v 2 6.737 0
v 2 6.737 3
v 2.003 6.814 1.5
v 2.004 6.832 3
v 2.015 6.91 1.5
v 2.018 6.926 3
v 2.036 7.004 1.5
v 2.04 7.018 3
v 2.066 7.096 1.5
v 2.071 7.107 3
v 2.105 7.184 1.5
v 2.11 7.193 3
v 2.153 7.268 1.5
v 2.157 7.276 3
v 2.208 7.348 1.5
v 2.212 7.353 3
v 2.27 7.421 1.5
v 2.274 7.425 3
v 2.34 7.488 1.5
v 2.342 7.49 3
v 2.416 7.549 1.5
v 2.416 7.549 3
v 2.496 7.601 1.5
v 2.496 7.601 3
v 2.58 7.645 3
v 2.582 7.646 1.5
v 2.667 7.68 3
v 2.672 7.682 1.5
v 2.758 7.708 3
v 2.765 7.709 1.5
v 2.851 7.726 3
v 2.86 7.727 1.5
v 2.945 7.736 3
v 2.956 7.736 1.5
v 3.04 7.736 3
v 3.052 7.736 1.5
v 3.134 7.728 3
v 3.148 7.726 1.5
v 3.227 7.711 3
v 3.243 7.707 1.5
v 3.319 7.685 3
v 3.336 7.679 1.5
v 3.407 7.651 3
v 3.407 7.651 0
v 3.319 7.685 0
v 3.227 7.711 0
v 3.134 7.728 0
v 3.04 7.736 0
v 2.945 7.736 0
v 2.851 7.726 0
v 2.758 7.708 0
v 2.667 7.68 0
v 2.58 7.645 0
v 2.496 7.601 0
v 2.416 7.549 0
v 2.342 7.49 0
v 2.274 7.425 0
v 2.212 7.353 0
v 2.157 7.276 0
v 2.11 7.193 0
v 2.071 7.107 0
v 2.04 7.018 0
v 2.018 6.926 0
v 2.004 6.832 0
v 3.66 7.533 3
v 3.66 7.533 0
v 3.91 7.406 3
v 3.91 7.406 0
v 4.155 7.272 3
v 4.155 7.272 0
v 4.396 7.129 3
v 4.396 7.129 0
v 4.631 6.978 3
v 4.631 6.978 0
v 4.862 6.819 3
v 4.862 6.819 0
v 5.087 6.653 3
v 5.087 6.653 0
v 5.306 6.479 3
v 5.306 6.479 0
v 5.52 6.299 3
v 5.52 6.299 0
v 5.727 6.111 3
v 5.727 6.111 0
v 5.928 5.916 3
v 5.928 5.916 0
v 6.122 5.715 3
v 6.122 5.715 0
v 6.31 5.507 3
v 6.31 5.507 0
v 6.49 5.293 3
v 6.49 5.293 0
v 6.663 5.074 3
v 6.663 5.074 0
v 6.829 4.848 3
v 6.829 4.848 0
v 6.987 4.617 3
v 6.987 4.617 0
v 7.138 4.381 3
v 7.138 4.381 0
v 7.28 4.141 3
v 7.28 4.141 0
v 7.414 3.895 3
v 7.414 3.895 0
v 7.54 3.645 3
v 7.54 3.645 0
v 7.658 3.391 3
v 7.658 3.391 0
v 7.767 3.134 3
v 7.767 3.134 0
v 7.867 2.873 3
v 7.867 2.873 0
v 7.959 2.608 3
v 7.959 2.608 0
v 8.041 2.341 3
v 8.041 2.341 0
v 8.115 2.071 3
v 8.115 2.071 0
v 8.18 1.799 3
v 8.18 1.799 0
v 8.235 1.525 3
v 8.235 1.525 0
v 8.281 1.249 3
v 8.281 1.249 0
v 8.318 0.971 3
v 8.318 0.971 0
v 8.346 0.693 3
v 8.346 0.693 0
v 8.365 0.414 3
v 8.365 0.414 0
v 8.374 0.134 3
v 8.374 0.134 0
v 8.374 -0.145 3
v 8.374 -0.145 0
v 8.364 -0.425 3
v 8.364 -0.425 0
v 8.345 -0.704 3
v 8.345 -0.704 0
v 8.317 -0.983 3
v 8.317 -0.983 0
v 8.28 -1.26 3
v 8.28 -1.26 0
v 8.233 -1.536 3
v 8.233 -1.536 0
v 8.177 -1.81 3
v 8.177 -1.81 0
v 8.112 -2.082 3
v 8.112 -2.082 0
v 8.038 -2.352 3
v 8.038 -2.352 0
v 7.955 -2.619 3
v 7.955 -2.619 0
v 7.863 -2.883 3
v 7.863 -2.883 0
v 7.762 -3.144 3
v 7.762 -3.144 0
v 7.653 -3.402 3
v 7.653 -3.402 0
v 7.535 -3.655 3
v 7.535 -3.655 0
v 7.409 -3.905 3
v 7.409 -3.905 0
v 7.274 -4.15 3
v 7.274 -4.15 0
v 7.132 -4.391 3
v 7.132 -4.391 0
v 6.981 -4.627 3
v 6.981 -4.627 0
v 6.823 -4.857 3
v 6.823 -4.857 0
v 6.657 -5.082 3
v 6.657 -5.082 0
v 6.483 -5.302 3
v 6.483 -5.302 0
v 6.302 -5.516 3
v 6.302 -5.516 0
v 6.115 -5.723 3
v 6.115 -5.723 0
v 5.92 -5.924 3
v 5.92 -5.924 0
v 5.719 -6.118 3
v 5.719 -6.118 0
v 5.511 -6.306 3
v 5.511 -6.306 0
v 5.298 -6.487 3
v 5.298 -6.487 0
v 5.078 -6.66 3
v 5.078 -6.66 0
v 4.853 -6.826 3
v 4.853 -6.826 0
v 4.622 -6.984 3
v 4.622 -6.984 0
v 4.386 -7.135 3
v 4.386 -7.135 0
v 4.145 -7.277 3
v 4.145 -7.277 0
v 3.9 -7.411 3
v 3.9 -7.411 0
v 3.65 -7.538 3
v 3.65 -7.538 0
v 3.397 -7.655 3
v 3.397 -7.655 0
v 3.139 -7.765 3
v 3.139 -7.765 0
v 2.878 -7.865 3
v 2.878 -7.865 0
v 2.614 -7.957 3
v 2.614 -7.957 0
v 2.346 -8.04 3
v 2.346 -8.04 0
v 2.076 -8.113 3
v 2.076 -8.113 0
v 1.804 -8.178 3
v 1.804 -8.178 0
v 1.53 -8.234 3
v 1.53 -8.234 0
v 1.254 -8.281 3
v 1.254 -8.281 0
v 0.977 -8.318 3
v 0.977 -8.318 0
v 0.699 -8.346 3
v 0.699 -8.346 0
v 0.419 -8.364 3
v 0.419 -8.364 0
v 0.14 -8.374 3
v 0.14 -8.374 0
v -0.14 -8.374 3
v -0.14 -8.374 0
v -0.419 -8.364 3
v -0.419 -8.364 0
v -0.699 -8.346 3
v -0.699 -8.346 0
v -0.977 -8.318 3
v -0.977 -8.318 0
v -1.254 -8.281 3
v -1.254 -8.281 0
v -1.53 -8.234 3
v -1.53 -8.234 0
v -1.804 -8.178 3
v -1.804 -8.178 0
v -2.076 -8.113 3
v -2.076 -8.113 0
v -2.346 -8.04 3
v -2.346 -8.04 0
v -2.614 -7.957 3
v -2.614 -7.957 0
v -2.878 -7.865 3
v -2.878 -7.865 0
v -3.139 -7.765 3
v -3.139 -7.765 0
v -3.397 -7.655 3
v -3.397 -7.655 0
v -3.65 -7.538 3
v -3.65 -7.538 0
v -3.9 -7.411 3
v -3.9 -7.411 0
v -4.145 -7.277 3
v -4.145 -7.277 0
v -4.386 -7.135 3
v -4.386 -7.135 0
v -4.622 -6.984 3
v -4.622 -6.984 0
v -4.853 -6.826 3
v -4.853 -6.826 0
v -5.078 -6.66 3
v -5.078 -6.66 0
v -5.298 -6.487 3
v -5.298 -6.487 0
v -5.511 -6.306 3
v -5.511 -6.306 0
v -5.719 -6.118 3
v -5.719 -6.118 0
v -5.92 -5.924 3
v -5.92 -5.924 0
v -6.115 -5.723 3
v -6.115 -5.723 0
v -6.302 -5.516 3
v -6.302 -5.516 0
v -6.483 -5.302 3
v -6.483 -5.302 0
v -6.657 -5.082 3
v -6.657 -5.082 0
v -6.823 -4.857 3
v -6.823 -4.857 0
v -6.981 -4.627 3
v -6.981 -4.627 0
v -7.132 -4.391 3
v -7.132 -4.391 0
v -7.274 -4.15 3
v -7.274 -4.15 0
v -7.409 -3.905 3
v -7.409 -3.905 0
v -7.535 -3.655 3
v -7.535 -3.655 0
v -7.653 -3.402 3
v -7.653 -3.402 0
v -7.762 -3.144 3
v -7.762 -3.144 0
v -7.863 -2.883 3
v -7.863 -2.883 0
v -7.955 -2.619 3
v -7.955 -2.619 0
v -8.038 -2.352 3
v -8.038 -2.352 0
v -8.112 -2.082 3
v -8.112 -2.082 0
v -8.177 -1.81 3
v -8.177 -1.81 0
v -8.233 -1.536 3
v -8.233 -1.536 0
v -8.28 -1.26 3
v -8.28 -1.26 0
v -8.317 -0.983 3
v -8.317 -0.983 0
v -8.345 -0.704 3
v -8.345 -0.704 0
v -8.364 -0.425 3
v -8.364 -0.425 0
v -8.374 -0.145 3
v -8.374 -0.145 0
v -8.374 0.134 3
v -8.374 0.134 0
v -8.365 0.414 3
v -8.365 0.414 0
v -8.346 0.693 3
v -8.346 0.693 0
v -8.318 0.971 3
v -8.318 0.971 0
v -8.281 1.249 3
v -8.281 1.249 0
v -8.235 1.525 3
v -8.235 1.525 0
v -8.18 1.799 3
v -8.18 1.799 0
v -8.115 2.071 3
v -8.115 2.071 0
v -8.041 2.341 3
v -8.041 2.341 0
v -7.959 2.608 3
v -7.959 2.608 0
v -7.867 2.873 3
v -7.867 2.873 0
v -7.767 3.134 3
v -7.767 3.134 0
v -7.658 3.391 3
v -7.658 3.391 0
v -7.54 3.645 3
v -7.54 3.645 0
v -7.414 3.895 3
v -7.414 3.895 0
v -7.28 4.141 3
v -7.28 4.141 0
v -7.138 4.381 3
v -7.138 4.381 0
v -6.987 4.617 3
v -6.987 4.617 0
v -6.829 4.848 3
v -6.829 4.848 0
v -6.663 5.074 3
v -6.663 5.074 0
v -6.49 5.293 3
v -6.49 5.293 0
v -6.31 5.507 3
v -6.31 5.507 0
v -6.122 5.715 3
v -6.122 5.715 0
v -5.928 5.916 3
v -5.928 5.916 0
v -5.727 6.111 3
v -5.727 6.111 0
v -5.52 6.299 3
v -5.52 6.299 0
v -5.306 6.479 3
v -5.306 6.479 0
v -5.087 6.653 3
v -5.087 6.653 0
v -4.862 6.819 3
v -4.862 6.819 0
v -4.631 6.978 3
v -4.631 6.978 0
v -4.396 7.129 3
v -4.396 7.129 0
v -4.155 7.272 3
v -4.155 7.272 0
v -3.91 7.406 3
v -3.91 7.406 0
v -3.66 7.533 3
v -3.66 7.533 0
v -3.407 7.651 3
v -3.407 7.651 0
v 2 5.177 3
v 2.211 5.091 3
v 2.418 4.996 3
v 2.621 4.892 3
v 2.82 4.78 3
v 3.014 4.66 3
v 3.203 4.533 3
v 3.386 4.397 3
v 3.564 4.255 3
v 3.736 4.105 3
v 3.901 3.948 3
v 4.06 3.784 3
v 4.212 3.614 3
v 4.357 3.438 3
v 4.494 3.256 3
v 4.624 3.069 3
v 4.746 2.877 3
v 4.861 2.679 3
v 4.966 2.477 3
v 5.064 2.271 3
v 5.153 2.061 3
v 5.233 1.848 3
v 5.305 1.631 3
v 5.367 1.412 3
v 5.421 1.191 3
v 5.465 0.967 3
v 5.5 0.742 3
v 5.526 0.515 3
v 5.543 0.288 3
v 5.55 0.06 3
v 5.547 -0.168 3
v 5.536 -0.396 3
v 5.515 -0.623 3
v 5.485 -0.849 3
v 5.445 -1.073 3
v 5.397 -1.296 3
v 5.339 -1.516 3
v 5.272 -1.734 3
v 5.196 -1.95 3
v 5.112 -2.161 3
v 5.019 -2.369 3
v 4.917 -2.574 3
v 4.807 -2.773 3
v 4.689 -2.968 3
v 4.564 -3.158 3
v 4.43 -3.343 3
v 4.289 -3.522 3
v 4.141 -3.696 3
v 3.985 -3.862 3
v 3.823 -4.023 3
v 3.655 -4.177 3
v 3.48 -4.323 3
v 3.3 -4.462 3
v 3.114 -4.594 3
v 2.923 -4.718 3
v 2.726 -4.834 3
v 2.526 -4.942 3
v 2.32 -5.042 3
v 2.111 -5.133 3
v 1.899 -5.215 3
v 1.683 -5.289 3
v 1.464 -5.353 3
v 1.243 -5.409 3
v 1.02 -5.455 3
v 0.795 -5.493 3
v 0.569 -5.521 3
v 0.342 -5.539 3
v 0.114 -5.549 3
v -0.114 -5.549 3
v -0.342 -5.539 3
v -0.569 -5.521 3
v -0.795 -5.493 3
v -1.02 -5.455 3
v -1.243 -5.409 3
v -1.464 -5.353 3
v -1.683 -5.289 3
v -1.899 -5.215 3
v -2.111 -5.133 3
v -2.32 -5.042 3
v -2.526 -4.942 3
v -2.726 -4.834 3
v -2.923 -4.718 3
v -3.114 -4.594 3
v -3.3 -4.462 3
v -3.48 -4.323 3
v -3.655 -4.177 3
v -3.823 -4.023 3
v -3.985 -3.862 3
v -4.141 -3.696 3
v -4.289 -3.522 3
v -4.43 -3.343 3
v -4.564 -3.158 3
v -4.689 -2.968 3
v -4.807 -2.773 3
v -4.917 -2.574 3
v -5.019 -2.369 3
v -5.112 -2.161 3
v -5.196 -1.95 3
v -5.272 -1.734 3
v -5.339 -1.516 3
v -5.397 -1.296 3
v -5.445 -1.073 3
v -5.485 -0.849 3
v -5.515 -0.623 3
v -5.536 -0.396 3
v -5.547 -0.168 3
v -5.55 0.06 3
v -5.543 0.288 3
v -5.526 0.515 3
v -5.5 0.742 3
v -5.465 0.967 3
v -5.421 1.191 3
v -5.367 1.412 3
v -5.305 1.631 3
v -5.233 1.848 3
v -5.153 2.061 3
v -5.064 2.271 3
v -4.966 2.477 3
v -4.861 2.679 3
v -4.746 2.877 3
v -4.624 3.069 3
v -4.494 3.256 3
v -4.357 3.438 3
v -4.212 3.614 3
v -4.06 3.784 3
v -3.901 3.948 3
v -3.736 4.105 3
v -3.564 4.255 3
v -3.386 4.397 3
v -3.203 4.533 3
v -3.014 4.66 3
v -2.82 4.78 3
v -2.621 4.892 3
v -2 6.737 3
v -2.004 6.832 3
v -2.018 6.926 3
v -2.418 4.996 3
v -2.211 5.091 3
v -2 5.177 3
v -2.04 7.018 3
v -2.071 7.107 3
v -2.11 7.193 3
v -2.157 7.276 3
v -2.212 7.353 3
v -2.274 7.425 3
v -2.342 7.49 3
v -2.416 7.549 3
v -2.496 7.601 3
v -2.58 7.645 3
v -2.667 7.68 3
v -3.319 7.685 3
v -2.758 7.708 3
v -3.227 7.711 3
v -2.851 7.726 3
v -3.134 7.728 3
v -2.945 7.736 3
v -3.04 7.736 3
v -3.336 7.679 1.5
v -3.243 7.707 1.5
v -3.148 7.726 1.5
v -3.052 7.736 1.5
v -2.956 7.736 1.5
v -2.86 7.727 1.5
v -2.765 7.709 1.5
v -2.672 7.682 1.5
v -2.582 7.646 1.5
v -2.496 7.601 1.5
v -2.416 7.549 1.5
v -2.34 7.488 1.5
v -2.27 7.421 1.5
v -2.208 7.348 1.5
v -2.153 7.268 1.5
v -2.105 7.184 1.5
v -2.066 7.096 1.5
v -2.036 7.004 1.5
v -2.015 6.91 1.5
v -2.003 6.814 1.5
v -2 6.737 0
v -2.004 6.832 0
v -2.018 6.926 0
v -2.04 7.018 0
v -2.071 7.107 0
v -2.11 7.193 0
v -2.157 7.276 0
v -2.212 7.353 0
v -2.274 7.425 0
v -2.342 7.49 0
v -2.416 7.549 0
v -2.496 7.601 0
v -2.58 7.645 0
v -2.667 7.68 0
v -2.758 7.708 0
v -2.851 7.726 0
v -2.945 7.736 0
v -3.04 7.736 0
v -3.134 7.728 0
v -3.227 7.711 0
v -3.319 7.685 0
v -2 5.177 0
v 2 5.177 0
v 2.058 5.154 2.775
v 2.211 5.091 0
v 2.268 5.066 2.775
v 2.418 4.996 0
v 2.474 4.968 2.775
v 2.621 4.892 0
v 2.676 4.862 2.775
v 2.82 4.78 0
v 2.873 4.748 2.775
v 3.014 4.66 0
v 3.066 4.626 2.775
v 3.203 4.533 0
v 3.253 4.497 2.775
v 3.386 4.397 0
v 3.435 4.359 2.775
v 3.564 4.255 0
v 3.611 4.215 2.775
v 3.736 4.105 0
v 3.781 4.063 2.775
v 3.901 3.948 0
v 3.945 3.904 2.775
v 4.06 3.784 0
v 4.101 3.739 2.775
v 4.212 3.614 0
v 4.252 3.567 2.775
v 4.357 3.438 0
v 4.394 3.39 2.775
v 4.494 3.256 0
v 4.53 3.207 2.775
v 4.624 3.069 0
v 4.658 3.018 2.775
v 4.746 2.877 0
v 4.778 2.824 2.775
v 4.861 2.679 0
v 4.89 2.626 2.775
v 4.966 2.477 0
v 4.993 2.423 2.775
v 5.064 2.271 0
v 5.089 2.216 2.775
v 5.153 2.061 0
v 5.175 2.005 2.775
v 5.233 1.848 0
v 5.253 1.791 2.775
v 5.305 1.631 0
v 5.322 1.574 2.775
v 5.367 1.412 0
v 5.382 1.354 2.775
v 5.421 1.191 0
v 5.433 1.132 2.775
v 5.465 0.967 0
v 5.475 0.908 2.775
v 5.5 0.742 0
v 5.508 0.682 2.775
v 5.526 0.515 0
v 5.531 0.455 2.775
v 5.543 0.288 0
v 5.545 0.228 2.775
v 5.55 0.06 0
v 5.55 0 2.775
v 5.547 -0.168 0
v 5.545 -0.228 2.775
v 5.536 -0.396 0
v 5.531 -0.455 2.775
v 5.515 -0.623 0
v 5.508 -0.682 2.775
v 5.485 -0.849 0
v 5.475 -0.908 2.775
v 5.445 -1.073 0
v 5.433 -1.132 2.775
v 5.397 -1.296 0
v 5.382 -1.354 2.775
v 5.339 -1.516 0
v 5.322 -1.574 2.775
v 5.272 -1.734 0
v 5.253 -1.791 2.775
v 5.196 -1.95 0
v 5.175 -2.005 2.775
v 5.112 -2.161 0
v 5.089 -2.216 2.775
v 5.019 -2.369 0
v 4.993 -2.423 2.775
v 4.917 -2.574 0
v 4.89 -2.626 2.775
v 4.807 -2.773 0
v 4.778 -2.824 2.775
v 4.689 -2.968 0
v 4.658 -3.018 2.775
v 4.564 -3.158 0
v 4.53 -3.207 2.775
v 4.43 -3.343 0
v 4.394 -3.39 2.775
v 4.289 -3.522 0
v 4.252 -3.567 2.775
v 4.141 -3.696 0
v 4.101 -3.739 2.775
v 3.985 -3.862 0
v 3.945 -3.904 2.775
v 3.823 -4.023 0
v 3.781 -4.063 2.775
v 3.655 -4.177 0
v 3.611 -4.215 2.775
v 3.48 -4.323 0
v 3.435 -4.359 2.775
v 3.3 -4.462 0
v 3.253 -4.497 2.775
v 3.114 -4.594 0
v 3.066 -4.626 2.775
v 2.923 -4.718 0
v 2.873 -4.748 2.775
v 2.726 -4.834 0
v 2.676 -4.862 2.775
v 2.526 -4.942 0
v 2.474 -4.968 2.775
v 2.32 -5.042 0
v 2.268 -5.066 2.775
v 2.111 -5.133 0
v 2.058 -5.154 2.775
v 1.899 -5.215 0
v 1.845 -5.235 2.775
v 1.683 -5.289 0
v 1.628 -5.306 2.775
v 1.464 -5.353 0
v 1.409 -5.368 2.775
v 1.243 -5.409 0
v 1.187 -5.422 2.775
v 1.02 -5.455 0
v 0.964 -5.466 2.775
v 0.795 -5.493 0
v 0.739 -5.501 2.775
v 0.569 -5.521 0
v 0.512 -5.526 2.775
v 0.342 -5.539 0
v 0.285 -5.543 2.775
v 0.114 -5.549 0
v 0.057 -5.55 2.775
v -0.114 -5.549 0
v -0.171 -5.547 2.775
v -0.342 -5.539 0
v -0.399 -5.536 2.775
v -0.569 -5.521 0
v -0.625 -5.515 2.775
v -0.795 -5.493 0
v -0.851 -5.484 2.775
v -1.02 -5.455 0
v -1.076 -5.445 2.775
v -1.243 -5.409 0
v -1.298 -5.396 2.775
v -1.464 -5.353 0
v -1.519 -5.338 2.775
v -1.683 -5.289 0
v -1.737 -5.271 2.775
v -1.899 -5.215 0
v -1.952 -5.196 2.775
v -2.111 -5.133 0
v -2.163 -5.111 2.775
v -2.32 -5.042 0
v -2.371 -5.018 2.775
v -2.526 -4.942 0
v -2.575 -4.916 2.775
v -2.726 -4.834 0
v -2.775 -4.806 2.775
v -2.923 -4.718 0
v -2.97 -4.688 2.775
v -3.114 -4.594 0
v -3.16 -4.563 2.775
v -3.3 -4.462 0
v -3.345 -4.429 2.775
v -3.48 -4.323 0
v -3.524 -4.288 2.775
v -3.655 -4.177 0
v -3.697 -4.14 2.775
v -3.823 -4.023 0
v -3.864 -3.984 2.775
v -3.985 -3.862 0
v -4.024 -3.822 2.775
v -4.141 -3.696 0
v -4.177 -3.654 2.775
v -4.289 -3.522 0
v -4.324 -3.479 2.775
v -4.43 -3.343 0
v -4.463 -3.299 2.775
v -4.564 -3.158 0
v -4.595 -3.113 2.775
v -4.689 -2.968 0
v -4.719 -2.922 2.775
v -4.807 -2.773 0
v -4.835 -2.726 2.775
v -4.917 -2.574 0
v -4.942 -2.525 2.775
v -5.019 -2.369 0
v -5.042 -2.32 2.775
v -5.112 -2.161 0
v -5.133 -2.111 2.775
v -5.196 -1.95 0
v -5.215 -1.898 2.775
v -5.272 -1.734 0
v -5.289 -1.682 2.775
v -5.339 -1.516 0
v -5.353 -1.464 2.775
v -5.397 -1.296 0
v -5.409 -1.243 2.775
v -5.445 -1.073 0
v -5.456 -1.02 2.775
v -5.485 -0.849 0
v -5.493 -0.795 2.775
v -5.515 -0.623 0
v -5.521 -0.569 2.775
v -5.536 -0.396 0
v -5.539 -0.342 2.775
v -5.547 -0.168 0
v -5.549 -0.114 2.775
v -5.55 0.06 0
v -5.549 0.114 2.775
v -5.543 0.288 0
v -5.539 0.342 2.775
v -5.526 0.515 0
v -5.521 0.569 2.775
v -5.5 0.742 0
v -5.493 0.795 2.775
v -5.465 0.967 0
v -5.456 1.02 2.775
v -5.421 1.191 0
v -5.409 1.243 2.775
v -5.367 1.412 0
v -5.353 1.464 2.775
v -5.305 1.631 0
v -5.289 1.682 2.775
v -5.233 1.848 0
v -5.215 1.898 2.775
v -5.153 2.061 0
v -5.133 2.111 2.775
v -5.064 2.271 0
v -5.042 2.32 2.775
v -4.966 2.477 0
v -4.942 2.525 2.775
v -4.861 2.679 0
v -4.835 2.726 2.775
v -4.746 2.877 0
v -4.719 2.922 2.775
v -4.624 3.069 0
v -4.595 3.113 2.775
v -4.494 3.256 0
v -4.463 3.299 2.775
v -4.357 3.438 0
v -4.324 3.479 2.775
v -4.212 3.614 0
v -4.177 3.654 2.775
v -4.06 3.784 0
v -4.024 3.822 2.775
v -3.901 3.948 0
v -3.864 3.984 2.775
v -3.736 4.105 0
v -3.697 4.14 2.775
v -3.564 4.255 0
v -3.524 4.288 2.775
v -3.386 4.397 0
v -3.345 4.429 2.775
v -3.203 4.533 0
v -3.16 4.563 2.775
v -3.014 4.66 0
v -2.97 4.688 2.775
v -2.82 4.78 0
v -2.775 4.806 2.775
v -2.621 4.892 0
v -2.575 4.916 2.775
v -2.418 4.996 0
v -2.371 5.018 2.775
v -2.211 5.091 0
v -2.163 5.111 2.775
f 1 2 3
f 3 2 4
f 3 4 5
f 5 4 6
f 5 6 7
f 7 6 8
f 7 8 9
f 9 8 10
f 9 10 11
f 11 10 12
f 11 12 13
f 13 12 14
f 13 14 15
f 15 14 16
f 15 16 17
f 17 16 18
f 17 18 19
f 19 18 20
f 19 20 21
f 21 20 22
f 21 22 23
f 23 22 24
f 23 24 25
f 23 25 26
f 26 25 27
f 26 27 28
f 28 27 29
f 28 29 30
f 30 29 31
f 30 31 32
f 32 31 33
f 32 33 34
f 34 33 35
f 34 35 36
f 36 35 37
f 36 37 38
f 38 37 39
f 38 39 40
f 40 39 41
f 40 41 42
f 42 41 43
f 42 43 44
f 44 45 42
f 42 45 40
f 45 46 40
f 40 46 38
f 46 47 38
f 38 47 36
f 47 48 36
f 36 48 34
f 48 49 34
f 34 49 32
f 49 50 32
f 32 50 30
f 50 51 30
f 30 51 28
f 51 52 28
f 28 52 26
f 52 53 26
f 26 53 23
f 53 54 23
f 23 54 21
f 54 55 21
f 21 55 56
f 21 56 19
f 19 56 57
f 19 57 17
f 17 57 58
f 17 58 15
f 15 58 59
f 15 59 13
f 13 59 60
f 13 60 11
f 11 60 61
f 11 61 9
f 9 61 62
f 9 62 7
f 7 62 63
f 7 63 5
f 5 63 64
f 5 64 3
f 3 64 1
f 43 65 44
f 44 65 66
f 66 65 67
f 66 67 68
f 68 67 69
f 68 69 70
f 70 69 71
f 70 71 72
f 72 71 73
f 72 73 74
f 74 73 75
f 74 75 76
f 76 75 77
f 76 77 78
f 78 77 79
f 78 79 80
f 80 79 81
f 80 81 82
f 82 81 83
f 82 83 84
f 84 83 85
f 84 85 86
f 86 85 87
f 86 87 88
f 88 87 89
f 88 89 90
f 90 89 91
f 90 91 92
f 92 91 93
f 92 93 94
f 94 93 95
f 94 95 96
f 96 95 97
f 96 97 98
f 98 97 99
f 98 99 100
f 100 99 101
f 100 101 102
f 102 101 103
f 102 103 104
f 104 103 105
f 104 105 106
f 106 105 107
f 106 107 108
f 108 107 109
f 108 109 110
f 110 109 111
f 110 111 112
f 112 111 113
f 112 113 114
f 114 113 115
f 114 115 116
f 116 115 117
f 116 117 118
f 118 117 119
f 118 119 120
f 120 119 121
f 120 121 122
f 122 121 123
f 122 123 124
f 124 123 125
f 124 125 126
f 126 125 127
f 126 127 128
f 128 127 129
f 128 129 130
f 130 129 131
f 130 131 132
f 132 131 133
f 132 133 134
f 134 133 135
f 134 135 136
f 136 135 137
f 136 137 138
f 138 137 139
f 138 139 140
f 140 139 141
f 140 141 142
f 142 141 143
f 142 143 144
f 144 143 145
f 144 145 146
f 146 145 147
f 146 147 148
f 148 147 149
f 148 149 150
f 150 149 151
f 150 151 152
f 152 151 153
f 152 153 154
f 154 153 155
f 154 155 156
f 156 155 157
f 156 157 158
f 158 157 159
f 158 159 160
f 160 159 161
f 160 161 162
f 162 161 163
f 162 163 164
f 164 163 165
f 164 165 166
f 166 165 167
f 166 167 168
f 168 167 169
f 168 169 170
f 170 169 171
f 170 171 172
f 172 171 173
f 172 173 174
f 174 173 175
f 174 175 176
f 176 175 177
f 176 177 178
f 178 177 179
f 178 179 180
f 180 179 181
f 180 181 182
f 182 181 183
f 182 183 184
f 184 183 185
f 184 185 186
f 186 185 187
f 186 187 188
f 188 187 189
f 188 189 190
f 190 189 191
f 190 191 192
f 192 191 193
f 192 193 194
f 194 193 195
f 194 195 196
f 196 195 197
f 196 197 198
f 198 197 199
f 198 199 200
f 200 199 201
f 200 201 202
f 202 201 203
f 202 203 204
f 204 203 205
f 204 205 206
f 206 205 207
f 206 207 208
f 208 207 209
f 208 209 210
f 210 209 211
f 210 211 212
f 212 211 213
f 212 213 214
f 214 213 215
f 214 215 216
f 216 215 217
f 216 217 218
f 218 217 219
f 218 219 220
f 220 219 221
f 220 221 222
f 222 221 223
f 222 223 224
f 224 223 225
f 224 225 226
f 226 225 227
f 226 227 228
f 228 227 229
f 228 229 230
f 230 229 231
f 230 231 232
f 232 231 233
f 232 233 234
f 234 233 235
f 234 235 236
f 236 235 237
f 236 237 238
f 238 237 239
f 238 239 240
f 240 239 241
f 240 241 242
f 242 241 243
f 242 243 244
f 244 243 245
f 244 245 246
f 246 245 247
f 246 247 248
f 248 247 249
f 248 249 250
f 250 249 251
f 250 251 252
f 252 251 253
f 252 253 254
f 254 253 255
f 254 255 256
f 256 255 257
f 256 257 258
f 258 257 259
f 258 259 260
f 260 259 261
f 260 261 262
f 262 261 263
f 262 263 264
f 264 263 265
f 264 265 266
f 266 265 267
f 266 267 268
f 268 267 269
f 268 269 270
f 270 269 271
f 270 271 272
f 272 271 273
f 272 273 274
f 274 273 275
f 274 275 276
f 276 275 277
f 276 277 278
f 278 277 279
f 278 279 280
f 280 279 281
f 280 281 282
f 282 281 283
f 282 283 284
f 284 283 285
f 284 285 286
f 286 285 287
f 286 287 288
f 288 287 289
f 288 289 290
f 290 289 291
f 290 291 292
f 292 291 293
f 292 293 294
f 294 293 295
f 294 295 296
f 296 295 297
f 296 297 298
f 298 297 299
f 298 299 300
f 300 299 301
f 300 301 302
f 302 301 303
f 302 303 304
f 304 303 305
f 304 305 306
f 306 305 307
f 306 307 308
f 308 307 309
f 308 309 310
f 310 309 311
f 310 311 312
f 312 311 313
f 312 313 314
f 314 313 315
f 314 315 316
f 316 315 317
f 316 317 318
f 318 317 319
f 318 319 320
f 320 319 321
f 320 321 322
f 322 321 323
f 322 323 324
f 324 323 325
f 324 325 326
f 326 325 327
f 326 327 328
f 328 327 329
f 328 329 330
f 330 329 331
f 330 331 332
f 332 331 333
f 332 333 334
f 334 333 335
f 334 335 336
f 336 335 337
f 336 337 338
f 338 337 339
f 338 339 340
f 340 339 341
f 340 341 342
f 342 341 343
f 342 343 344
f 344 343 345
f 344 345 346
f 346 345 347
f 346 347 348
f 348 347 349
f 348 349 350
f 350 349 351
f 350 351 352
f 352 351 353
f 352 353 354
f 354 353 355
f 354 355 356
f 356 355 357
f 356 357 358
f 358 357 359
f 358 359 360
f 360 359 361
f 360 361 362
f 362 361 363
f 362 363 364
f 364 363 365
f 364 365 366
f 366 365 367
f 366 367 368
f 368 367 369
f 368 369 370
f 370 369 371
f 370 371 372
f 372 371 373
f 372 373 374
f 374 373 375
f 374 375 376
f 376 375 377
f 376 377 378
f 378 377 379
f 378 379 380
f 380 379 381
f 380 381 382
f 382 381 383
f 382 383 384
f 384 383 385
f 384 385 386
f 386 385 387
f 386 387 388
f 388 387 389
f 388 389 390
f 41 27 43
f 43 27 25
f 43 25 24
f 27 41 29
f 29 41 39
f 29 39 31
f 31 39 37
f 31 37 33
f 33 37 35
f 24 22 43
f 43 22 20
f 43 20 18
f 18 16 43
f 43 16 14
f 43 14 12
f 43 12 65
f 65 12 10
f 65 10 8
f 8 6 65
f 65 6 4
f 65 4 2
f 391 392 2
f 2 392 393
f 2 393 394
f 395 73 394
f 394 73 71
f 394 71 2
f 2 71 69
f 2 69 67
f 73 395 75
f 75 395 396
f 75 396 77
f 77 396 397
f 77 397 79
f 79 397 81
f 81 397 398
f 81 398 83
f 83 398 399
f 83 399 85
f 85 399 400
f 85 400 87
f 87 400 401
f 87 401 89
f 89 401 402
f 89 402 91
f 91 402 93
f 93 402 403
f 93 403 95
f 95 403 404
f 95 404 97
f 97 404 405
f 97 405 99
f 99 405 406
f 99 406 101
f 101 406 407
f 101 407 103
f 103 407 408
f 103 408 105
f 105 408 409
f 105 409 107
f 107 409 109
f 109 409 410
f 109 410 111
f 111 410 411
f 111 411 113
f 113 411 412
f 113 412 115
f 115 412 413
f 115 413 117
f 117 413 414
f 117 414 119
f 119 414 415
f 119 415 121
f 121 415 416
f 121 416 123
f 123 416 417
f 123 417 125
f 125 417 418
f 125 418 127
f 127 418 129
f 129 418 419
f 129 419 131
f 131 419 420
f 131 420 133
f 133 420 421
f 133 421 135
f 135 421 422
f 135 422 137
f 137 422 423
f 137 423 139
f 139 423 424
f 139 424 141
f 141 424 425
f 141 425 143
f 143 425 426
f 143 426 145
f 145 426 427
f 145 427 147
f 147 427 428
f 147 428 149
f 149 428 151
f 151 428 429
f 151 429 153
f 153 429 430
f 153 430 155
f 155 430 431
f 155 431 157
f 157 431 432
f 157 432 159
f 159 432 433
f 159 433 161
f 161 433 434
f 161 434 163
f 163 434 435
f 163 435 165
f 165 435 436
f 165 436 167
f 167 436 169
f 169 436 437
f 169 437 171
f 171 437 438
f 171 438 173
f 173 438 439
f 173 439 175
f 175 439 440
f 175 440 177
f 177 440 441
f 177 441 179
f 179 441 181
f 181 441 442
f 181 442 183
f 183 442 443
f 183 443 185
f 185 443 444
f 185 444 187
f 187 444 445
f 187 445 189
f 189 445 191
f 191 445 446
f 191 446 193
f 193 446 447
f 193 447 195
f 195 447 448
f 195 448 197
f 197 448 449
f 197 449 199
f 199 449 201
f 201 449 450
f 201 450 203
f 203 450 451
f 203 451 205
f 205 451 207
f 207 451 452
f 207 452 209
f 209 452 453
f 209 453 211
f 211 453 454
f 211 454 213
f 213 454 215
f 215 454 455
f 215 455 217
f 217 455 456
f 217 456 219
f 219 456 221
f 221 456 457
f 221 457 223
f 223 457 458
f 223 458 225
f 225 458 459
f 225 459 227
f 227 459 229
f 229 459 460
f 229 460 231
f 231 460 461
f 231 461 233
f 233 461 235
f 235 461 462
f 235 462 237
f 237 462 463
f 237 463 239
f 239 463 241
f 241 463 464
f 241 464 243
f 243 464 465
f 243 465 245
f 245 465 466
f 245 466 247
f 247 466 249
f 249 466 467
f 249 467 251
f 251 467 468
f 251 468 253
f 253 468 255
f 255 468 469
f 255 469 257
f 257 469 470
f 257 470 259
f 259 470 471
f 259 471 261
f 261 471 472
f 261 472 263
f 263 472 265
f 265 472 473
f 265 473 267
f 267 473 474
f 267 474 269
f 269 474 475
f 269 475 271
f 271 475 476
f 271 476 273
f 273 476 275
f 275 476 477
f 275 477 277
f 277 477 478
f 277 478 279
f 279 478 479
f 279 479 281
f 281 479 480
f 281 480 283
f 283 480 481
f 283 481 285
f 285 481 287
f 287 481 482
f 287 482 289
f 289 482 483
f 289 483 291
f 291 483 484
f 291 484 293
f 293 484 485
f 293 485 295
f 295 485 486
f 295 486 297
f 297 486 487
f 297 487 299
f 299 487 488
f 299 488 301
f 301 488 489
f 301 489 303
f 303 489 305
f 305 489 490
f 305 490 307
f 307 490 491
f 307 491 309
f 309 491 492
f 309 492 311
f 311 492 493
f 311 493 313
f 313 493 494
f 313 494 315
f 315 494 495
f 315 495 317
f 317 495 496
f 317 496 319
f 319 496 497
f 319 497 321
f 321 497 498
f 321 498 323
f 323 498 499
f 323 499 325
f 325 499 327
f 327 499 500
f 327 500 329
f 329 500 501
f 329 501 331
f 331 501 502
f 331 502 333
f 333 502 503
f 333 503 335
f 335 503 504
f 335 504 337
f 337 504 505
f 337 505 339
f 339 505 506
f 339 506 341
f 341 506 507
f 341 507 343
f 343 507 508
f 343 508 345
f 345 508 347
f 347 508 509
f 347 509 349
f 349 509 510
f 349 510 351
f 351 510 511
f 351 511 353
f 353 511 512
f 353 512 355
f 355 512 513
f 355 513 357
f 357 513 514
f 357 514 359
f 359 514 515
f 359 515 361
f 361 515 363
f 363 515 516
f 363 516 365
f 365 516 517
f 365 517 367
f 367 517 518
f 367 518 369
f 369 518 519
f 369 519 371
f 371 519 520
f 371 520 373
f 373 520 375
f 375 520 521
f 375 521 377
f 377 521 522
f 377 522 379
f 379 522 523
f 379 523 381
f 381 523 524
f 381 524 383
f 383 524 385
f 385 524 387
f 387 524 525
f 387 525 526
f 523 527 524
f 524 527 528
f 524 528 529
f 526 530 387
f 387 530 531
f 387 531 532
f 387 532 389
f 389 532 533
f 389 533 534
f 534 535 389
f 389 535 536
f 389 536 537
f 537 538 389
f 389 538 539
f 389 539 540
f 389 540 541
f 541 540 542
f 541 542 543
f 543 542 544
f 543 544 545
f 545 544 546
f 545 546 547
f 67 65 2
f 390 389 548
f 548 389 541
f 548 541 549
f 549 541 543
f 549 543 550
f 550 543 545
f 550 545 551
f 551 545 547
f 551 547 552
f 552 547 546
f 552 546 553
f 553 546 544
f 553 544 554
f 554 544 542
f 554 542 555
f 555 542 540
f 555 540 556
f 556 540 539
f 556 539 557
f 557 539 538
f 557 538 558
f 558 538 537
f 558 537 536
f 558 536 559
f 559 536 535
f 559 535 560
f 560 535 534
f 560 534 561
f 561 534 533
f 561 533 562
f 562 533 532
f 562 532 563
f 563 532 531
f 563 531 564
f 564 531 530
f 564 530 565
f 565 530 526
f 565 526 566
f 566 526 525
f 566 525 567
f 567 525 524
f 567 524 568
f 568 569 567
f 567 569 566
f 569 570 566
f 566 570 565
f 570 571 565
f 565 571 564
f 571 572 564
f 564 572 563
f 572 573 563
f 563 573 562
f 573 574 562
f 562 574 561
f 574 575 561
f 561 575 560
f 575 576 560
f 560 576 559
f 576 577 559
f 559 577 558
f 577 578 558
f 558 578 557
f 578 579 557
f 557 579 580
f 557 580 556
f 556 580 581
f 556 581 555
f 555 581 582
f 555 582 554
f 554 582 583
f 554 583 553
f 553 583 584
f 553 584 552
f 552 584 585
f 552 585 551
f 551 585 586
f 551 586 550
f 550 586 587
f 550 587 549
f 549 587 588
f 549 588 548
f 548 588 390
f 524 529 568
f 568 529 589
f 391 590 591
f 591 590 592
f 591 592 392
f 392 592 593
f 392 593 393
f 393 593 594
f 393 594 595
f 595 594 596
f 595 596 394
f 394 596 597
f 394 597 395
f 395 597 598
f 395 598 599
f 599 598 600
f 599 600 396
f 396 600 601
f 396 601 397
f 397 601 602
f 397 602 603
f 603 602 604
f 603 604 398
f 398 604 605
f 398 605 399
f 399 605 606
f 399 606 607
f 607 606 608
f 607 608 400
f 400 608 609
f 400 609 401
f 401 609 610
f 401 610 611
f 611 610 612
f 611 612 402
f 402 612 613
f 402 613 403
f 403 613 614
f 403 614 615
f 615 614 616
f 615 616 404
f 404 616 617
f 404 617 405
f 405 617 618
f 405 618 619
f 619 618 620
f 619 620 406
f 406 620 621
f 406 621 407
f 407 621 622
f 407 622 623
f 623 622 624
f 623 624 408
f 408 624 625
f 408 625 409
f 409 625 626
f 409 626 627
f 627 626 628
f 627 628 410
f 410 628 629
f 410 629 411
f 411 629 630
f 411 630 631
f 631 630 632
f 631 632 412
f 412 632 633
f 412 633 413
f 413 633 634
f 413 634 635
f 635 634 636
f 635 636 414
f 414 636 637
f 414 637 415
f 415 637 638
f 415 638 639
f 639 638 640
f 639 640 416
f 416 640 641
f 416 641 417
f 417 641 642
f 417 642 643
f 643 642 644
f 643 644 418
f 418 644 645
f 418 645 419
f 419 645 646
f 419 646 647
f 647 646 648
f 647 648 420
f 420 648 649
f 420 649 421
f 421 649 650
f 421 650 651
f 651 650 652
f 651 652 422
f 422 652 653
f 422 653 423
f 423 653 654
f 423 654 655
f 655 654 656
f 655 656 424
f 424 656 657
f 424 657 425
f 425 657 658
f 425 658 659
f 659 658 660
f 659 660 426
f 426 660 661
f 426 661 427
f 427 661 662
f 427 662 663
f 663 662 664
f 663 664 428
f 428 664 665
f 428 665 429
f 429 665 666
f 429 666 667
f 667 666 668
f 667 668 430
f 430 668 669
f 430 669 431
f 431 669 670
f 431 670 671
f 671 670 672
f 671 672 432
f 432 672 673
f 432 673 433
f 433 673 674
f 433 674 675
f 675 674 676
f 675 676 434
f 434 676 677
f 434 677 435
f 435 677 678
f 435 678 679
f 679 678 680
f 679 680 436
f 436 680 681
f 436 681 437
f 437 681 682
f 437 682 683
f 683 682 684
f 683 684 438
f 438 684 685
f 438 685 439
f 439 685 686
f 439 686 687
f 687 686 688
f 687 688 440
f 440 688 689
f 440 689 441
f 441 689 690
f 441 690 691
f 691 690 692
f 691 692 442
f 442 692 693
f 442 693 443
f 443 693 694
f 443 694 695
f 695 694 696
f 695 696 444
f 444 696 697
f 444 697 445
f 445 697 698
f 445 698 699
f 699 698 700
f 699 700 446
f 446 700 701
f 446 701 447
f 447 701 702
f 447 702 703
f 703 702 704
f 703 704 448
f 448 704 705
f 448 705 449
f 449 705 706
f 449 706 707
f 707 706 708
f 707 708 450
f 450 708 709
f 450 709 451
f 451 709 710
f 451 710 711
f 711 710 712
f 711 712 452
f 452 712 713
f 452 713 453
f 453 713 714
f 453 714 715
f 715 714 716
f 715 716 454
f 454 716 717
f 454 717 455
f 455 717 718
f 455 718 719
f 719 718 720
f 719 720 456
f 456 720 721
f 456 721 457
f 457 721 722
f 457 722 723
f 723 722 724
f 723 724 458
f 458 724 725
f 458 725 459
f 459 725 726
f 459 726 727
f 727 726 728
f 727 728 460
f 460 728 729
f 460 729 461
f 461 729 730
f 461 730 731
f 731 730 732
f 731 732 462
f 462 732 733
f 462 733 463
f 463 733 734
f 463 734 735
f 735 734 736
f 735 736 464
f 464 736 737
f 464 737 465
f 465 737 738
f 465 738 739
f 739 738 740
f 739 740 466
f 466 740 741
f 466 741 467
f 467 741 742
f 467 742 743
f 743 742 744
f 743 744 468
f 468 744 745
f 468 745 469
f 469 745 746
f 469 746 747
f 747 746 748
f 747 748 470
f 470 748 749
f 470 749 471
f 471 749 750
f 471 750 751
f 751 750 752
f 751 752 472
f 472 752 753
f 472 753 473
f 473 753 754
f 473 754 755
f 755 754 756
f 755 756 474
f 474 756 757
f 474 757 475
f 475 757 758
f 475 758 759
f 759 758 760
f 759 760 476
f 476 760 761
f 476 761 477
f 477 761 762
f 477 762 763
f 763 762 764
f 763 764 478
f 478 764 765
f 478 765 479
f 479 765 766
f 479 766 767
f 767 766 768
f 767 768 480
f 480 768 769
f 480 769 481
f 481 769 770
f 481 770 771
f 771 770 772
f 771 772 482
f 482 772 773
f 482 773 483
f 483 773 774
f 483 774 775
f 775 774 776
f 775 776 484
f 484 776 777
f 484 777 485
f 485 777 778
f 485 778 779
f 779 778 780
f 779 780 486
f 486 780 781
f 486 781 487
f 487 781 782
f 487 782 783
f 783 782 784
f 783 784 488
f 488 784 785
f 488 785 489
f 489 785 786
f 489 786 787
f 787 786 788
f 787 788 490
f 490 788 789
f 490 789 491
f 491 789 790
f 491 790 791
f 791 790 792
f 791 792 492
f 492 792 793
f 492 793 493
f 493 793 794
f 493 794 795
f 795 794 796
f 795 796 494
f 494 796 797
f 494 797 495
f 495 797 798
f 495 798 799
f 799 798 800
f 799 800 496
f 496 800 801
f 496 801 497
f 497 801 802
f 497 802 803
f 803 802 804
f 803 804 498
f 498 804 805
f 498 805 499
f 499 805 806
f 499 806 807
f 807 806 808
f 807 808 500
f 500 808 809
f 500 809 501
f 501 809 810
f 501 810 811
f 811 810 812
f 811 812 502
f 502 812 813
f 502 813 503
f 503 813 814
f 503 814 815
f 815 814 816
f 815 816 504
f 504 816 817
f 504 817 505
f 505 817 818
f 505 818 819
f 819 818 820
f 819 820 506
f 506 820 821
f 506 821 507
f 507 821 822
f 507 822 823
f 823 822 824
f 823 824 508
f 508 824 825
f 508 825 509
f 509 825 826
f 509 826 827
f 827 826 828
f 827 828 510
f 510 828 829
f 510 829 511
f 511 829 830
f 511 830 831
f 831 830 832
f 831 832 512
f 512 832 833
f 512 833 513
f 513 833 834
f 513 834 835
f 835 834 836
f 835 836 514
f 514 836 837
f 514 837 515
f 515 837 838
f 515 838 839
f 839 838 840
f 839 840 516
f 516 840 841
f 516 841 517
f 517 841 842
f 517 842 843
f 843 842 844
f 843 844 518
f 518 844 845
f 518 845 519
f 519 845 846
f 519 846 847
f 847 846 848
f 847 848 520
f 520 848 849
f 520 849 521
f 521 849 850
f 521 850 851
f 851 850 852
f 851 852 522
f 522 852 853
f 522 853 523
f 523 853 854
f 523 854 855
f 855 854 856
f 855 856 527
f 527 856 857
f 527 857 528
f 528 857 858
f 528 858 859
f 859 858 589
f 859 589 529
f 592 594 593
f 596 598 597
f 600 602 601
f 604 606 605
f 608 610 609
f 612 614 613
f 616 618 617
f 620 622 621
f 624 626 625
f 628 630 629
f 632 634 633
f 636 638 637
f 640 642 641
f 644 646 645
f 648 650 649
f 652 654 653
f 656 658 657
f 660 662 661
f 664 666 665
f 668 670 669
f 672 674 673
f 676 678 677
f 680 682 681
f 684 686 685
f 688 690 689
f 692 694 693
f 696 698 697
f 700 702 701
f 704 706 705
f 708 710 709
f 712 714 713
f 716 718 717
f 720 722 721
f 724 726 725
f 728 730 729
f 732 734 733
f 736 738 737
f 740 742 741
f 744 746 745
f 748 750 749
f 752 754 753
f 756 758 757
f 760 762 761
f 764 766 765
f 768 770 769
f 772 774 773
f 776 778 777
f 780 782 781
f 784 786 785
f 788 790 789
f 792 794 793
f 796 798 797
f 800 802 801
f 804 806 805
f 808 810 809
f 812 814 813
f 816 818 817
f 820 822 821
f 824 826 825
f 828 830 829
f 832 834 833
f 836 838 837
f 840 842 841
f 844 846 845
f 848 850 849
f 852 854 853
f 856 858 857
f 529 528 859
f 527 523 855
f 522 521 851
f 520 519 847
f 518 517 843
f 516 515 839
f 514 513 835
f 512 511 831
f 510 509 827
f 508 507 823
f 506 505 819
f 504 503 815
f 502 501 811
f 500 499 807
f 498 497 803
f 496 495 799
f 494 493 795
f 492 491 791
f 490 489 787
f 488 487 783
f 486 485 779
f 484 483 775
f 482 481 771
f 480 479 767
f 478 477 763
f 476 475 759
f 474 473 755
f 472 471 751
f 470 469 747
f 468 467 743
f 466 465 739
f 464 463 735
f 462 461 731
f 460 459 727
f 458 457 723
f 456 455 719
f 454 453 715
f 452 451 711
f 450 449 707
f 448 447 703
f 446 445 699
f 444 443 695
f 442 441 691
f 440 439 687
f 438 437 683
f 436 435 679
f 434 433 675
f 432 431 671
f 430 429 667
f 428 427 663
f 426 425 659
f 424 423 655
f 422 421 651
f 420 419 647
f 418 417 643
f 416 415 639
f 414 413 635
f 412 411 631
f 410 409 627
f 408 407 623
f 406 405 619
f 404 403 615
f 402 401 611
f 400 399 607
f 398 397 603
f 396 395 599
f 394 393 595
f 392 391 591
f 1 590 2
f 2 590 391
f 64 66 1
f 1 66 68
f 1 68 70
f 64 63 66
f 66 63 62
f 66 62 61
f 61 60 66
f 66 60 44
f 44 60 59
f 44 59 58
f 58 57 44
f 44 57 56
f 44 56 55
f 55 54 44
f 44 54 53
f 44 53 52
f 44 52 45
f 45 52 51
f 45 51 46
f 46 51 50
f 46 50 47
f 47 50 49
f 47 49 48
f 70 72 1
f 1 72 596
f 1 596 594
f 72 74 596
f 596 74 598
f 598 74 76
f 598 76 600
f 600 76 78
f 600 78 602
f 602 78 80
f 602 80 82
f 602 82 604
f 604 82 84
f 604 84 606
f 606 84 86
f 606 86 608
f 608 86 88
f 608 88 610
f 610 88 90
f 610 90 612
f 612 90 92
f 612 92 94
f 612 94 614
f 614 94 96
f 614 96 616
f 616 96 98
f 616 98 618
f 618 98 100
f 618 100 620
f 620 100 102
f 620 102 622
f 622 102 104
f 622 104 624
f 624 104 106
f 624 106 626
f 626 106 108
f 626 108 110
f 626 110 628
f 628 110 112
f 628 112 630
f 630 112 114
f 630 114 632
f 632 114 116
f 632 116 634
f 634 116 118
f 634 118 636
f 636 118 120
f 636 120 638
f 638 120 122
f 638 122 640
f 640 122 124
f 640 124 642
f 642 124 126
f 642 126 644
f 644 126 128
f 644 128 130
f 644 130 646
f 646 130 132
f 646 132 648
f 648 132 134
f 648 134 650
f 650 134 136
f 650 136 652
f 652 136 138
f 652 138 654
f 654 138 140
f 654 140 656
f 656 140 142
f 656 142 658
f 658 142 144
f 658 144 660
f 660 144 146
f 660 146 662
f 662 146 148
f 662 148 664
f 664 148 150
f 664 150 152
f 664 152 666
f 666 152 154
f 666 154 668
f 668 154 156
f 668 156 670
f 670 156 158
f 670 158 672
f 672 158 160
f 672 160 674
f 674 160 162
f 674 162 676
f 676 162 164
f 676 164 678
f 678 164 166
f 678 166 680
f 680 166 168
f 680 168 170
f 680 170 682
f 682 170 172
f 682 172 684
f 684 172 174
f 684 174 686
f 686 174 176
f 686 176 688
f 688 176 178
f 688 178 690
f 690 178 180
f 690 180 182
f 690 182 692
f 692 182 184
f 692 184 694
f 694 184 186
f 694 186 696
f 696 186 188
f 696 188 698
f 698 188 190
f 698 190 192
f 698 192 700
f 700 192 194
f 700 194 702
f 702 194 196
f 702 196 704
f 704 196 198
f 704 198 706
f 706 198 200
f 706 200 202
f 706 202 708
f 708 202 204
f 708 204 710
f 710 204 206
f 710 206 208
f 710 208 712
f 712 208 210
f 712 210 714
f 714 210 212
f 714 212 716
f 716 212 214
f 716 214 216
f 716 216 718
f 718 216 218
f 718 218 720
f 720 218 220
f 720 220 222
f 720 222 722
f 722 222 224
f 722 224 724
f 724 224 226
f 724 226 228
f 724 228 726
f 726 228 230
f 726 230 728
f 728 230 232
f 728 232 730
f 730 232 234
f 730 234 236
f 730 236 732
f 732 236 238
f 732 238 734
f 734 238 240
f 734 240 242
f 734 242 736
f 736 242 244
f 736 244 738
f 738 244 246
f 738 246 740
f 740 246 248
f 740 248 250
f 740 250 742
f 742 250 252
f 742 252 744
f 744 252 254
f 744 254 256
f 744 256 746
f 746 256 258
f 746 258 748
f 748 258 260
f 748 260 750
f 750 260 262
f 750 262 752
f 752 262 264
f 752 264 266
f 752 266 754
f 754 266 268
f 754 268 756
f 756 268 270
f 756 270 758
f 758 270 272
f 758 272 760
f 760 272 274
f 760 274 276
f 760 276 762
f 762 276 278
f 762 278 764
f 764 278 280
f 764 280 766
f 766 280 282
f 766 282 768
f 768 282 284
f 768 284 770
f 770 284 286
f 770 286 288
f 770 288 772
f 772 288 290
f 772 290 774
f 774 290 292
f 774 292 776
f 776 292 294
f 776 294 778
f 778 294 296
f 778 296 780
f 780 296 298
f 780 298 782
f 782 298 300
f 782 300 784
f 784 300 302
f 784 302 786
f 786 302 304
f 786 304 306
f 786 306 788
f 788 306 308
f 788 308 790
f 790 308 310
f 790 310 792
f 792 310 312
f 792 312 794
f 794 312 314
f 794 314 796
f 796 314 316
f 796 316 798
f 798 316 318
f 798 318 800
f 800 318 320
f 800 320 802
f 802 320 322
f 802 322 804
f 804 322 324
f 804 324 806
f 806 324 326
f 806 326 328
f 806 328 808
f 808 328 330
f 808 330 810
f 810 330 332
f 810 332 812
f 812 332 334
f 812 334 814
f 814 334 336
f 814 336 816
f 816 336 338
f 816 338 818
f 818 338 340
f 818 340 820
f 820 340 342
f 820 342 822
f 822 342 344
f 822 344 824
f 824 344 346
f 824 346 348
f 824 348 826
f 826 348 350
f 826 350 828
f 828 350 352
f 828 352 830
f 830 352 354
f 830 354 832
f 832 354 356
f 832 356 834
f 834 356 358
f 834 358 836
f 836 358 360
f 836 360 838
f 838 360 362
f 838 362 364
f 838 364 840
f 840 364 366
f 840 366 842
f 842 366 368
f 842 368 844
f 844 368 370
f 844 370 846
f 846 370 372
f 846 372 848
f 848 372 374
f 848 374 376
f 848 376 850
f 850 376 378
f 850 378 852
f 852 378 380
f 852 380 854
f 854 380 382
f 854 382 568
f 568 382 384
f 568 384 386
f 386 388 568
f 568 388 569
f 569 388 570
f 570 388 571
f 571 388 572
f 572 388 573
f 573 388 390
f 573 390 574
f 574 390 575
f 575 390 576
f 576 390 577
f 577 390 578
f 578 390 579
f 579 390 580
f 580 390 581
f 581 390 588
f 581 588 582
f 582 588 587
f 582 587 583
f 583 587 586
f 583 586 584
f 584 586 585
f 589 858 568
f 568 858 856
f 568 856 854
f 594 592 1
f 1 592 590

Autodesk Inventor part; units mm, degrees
ref_plane "YZ Plane" through (0, 0, 0) normal (1, 0, 0) x (0, 1, 0)
ref_plane "XZ Plane" through (0, 0, 0) normal (0, 1, 0) x (-1, 0, 0)
ref_plane "XY Plane" through (0, 0, 0) normal (0, 0, 1) x (1, 0, 0)
sketch "Sketch1" plane through (0, 0, 0) normal (0, 0, 1) x (1, 0, 0)
  circle A0 centre (0, 0) radius 5.55
  circle A1 centre (0, 0) radius 8.375
  line L0 (-2, 8.375) -> (2, 8.375)
  line L1 (2, 8.375) -> (2, 0)
  line L2 (2, 0) -> (-2, 0)
  line L3 (-2, 0) -> (-2, 8.375)
  point P0 (-2, 5.1771)
  point P1 (-2, 8.1327)
  point P2 (2, 8.1327)
  point P3 (2, 5.1771)
  dimension "d0" = 11.1
  dimension "d1" = 16.75
  dimension "d2" = 4
extrude "Extrusion1" add sketch "Sketch1" along normal blind 3 contours A0 L1 A1 L3 picked at (7.294, -1.1285)
fillet "Fillet1" radius 1 2 edges at (-2, 8.1327, 1.5) (2, 8.1327, 1.5)
properties part number "2002_Rx_Tx Coil Spacer_Glass_v3"
